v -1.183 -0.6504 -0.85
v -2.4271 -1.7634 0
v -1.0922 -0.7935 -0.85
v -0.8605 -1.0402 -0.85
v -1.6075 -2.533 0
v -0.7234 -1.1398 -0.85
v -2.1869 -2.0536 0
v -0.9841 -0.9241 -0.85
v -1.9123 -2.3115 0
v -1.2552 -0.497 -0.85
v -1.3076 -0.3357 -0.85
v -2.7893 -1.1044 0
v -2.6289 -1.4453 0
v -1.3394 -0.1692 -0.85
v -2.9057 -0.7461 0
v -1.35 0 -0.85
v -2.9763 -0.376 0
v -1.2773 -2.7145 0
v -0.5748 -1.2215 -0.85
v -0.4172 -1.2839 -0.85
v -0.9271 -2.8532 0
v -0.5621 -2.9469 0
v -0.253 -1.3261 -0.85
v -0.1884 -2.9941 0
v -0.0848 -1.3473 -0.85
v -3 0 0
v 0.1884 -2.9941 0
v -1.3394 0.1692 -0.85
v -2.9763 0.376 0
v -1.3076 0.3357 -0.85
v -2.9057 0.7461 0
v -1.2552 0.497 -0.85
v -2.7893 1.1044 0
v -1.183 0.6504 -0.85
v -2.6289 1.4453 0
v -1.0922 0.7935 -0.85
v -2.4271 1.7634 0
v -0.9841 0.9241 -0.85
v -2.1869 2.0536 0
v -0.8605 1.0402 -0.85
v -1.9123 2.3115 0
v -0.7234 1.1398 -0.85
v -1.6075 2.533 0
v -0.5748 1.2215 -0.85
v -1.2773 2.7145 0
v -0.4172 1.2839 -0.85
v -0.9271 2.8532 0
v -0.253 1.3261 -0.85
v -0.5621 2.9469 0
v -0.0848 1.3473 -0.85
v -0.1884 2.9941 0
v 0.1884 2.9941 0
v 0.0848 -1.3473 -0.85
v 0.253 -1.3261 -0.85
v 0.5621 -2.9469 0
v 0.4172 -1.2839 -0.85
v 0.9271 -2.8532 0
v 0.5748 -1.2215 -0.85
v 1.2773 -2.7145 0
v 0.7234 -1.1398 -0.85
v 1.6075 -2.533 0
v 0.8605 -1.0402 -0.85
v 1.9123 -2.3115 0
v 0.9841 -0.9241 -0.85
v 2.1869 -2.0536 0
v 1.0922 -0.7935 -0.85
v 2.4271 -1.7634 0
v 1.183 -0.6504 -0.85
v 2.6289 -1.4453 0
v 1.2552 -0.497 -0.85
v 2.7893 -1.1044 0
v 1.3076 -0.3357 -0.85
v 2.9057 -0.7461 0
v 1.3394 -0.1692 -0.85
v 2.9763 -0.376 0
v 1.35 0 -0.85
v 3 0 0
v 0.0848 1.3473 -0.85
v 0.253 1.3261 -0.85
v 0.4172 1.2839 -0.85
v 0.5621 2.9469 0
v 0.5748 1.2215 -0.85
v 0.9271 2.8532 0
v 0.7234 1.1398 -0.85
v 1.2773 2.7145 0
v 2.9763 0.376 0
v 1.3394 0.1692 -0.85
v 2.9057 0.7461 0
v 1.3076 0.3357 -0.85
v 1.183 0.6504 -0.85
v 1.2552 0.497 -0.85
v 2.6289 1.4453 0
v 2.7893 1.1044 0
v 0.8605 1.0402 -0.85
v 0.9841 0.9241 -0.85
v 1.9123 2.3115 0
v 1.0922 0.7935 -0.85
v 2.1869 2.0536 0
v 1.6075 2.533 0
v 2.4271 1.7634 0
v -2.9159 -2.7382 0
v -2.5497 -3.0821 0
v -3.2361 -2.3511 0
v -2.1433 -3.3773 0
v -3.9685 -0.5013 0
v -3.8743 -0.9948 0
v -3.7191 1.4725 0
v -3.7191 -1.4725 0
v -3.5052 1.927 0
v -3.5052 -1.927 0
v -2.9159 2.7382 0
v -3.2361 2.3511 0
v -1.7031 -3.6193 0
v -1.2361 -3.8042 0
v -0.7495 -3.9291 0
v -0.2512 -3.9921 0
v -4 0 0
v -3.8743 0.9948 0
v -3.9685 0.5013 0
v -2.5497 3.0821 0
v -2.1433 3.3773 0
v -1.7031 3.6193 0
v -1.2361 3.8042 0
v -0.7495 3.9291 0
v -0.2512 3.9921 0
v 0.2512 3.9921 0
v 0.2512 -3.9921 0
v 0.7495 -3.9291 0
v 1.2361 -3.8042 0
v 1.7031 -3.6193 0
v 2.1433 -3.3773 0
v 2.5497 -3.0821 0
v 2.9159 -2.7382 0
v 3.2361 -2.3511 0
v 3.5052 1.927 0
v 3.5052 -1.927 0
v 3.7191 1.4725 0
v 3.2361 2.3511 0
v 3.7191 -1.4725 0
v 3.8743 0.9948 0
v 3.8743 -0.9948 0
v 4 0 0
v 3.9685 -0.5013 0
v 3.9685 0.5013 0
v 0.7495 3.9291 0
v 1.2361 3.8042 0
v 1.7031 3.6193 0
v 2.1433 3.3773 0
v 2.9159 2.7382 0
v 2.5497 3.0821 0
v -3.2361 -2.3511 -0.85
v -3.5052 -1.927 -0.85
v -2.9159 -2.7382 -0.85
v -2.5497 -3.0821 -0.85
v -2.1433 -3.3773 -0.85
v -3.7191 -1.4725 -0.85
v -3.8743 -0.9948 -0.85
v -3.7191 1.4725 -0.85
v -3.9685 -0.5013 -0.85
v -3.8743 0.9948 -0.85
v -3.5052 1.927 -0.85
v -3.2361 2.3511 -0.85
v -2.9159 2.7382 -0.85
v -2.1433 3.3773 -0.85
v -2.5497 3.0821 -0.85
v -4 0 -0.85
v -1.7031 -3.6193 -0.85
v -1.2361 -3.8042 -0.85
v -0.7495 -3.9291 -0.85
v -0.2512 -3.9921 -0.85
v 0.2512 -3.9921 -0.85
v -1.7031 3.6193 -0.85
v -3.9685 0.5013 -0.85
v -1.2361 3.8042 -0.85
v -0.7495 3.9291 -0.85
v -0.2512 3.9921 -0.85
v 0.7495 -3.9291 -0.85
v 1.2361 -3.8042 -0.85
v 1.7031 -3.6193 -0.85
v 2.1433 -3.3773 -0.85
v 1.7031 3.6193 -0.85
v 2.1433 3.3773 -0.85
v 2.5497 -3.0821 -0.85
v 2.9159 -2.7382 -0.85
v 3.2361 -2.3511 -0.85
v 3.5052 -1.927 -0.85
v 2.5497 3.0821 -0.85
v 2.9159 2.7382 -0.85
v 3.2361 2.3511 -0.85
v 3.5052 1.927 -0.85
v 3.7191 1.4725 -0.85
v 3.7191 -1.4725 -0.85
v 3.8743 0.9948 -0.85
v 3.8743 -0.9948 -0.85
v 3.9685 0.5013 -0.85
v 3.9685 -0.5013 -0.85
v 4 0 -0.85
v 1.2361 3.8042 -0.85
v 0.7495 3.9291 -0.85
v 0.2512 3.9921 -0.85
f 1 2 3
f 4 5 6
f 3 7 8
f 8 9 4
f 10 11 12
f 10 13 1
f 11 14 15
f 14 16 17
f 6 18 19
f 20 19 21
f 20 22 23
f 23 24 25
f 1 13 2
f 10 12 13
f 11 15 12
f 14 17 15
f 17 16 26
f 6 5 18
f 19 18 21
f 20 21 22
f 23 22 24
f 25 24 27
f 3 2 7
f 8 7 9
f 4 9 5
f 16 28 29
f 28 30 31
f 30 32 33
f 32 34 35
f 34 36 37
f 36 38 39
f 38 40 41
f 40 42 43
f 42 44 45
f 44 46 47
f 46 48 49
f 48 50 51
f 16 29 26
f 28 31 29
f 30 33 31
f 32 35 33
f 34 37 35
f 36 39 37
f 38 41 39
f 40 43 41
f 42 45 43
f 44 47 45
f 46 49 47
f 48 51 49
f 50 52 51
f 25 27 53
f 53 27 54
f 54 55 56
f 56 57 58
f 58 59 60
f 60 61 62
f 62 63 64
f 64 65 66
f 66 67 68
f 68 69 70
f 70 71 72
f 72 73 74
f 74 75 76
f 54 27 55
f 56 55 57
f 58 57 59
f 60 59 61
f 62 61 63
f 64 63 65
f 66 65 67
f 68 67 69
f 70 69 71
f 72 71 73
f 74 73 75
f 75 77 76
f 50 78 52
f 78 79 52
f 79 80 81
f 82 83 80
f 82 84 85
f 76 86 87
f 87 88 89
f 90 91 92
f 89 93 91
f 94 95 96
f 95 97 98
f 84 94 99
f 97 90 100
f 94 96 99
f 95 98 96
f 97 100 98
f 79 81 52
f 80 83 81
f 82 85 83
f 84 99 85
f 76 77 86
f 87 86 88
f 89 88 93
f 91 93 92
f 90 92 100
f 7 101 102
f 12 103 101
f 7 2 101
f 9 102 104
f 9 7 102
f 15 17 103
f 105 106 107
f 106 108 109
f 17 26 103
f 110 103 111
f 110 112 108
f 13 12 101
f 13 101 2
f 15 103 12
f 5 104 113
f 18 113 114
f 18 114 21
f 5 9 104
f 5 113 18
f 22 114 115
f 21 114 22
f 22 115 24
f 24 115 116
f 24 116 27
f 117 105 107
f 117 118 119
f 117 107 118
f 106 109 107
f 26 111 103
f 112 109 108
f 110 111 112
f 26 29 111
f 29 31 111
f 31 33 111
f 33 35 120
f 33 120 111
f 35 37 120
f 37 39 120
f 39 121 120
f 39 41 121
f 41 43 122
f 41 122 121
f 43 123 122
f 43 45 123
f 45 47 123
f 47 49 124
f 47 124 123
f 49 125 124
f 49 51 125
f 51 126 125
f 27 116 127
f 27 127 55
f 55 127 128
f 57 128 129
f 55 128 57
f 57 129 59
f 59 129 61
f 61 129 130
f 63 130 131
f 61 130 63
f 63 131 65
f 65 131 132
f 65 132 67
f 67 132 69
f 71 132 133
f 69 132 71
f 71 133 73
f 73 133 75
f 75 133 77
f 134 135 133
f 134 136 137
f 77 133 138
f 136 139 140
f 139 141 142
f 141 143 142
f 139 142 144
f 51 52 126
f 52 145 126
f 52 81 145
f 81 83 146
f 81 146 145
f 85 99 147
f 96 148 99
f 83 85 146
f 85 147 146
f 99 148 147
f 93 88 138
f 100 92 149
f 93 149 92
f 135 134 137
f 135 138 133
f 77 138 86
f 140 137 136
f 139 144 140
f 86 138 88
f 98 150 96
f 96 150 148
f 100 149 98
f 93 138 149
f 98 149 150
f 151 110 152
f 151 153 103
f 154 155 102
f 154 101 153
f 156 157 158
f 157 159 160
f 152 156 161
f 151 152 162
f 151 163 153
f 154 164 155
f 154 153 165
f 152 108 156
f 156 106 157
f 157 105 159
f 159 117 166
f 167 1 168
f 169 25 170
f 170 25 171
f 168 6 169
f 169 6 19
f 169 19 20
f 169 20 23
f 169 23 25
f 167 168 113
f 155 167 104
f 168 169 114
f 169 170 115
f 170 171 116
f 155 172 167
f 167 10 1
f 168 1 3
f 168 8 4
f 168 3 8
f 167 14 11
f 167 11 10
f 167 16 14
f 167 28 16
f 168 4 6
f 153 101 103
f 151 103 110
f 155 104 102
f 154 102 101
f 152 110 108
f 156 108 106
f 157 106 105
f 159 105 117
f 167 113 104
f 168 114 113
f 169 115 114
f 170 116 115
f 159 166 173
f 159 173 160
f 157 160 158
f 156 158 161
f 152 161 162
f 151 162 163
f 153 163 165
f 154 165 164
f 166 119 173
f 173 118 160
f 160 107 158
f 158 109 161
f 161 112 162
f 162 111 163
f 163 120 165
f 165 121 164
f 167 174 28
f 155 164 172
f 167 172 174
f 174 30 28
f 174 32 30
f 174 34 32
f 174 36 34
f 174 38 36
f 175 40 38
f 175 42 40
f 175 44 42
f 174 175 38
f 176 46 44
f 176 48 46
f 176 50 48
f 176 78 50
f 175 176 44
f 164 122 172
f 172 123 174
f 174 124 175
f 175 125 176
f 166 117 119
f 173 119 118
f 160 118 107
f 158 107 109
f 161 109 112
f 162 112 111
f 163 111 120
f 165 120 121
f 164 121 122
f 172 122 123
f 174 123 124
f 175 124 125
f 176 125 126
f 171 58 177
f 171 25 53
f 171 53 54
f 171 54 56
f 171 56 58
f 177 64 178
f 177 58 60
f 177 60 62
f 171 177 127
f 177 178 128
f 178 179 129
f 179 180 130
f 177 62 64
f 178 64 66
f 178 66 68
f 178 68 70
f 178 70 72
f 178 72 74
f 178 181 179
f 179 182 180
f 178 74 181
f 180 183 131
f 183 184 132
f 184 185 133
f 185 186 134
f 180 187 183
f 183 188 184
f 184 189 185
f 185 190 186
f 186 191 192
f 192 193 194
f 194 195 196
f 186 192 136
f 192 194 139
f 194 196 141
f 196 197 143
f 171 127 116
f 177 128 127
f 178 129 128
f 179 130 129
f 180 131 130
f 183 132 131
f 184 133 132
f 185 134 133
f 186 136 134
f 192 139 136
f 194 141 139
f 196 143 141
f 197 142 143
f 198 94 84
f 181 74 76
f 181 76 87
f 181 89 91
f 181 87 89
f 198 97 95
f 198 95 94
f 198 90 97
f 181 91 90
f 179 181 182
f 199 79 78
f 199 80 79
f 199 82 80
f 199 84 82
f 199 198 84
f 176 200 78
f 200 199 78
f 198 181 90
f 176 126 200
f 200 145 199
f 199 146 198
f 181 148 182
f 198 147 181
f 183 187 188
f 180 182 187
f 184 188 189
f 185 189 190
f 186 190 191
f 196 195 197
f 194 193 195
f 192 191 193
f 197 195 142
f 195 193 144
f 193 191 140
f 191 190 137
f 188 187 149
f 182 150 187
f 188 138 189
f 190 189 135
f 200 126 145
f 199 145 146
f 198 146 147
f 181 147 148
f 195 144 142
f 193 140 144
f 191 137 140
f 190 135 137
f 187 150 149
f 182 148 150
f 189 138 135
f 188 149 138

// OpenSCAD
$fn = 50;

difference() {
	union() {
		translate(v = [0, 0, -0.8500000000000001]) {
			cylinder(h = 3.85, r = 4.0);
		}
	}
	union() {
		translate(v = [0, 0, 0]) {
			rotate(a = [0, 0, 0]) {
				difference() {
					union() {
						translate(v = [0, 0, -3.85]) {
							cylinder(h = 3.85, r = 1.0);
						}
						translate(v = [0, 0, -0.85]) {
							cylinder(h = 0.85, r1 = 1.35, r2 = 3.0);
						}
						translate(v = [0, 0, -3.85]) {
							cylinder(h = 3.85, r = 1.35);
						}
						translate(v = [0, 0, -3.85]) {
							cylinder(h = 3.85, r = 1.0);
						}
					}
					union();
				}
			}
		}
		#cylinder(h = 3, r = 5.0);
	}
}
